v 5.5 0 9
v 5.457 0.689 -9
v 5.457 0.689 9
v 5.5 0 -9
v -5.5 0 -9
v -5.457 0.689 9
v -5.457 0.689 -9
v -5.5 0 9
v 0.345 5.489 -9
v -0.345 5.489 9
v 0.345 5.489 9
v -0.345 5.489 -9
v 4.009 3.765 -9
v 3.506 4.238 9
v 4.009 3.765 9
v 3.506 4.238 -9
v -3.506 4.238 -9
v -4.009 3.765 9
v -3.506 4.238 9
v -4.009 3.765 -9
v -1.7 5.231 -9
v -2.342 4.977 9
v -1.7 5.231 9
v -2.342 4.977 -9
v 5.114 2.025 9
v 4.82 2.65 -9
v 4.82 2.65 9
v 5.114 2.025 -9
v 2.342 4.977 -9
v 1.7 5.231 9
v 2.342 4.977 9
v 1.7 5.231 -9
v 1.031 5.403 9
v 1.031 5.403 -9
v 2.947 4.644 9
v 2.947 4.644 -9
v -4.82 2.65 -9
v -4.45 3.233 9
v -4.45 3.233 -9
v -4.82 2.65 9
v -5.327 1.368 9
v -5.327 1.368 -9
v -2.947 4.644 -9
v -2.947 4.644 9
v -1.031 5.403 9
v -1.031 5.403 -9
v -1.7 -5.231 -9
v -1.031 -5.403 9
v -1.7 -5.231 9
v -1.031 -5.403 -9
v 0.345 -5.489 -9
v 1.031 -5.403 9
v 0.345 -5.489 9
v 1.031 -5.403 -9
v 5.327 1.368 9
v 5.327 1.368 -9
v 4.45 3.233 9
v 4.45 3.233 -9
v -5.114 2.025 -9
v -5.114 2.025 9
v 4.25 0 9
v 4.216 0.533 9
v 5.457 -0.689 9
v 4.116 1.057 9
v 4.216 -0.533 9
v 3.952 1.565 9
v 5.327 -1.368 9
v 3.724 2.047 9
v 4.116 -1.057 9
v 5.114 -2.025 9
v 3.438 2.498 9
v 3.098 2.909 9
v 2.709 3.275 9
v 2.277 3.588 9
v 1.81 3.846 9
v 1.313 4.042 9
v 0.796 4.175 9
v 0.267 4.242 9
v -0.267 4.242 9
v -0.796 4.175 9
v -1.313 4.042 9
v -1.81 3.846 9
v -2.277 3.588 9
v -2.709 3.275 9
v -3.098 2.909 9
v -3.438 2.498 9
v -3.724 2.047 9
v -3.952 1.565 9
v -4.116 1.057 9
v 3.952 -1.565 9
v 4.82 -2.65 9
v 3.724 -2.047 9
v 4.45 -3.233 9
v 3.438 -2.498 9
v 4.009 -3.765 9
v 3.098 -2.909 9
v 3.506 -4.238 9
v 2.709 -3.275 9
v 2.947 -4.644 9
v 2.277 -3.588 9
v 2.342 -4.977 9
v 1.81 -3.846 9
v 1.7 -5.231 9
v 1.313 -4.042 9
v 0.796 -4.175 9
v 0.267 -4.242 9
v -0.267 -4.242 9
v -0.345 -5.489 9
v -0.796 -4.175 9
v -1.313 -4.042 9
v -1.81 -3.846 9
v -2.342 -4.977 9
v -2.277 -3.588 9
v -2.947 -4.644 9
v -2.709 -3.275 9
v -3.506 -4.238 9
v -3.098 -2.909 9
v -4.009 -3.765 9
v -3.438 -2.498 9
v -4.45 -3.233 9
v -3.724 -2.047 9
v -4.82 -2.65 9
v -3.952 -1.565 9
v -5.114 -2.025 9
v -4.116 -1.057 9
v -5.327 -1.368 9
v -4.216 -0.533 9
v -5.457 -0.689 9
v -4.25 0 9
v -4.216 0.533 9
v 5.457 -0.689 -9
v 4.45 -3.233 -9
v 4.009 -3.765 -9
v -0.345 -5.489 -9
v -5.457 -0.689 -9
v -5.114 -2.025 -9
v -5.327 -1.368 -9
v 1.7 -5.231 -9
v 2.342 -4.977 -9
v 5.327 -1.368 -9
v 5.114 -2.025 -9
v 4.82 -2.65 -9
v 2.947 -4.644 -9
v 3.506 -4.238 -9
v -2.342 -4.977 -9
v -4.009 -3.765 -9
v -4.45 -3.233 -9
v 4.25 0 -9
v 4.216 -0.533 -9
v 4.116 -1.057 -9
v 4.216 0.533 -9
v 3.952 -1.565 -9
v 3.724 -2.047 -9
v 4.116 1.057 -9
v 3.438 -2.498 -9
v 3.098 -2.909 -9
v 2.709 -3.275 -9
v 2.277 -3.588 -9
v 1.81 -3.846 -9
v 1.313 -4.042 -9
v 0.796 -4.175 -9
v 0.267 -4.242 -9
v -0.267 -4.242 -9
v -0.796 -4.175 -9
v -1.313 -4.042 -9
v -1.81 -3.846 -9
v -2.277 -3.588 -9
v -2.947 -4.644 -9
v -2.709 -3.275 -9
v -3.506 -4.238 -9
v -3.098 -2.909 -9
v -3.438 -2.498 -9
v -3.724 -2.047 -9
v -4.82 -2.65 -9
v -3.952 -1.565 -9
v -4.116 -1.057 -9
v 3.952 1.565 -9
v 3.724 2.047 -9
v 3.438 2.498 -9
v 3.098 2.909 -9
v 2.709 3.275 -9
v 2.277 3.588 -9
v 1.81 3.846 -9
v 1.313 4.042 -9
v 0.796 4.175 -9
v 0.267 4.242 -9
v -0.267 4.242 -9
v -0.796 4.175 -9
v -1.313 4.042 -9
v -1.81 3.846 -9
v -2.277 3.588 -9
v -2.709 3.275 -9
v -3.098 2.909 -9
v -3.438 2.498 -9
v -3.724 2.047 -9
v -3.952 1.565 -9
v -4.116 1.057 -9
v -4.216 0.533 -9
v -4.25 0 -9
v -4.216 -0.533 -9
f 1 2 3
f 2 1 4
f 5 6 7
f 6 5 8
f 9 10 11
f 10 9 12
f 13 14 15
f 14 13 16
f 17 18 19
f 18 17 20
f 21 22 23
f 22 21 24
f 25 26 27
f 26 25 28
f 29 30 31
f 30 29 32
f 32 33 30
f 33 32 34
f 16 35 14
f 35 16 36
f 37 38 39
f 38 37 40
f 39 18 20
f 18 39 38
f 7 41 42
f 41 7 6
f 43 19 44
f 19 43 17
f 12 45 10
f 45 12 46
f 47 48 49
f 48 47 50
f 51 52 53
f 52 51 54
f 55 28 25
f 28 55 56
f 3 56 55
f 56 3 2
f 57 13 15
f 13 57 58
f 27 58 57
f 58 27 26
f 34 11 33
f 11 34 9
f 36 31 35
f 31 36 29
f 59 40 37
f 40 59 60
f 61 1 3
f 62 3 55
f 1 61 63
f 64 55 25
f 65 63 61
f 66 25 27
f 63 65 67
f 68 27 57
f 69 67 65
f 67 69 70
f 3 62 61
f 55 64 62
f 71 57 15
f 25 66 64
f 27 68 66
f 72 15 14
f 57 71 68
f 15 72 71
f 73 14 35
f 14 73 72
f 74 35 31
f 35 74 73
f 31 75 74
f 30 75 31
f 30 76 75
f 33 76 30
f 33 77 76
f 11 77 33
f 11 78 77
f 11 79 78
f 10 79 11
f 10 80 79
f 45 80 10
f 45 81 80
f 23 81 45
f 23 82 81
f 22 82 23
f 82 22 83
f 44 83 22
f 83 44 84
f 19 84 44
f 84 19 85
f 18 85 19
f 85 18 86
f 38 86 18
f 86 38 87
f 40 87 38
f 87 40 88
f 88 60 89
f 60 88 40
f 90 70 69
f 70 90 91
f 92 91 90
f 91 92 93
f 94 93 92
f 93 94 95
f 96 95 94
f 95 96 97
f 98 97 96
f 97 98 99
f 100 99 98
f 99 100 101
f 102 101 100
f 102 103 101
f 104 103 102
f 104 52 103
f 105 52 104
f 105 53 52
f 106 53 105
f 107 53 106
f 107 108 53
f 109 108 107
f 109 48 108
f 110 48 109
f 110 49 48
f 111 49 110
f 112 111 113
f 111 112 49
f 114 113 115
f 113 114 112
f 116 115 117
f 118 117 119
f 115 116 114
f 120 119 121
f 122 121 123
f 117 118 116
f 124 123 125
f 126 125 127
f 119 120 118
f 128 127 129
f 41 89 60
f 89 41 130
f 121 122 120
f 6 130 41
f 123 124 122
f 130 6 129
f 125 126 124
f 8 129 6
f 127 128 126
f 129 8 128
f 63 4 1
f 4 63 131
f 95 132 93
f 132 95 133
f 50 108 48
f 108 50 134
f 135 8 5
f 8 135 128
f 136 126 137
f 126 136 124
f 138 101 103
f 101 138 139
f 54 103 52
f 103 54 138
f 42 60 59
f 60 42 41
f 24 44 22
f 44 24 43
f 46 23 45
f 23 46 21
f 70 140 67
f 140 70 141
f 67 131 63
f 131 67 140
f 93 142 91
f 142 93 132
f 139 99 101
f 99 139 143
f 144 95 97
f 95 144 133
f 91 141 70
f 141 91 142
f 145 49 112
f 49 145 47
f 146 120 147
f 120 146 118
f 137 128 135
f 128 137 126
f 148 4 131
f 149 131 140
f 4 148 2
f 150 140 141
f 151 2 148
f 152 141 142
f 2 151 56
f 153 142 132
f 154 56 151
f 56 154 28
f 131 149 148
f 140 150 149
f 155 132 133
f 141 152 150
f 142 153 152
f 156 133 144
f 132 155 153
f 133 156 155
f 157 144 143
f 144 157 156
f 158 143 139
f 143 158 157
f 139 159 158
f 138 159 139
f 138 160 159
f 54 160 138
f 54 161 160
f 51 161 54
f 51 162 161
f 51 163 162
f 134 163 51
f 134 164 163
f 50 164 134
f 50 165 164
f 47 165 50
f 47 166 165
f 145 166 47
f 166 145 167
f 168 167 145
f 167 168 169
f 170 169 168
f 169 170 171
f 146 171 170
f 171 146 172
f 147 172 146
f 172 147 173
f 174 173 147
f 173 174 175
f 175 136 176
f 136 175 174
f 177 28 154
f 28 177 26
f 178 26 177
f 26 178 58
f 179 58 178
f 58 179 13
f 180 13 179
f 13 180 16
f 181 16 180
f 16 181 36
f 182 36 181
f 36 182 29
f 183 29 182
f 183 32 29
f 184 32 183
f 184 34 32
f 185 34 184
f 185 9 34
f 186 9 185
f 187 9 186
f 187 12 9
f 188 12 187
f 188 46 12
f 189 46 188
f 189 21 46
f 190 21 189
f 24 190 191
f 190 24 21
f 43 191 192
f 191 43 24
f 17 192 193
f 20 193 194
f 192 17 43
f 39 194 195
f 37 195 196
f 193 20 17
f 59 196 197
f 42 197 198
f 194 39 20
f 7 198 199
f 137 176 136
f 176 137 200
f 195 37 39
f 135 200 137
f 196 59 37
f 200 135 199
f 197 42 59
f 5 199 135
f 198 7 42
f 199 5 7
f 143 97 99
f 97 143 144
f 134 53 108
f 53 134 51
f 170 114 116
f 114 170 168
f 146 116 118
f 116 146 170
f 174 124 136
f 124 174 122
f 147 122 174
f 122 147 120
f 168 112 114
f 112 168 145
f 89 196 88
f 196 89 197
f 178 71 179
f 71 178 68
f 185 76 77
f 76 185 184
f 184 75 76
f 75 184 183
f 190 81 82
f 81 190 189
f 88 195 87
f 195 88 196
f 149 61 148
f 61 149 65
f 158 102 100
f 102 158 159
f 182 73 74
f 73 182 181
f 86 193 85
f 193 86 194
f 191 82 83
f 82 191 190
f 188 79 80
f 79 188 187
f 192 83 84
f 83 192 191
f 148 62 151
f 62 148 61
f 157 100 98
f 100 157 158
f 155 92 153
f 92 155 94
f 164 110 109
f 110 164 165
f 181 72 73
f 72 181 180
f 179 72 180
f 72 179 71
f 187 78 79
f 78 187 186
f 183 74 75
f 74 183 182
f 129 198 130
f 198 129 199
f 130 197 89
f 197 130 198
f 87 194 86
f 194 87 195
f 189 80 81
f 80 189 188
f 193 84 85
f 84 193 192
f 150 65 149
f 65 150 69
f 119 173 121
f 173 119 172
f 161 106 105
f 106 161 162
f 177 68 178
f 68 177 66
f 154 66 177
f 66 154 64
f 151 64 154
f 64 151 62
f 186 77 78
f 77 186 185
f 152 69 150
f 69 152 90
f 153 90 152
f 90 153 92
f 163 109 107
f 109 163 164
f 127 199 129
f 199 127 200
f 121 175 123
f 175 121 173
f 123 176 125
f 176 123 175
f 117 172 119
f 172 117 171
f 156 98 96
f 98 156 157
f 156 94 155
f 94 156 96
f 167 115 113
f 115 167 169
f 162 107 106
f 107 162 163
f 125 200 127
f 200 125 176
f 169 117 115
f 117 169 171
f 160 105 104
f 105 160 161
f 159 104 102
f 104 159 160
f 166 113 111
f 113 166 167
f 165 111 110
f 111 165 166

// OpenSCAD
$fn = 50;


difference() {
	union() {
		translate(v = [0, 0, -9.0000000000]) {
			cylinder(h = 18, r = 5.5000000000);
		}
	}
	union() {
		translate(v = [0, 0, -100.0000000000]) {
			cylinder(h = 200, r = 4.2500000000);
		}
	}
}
